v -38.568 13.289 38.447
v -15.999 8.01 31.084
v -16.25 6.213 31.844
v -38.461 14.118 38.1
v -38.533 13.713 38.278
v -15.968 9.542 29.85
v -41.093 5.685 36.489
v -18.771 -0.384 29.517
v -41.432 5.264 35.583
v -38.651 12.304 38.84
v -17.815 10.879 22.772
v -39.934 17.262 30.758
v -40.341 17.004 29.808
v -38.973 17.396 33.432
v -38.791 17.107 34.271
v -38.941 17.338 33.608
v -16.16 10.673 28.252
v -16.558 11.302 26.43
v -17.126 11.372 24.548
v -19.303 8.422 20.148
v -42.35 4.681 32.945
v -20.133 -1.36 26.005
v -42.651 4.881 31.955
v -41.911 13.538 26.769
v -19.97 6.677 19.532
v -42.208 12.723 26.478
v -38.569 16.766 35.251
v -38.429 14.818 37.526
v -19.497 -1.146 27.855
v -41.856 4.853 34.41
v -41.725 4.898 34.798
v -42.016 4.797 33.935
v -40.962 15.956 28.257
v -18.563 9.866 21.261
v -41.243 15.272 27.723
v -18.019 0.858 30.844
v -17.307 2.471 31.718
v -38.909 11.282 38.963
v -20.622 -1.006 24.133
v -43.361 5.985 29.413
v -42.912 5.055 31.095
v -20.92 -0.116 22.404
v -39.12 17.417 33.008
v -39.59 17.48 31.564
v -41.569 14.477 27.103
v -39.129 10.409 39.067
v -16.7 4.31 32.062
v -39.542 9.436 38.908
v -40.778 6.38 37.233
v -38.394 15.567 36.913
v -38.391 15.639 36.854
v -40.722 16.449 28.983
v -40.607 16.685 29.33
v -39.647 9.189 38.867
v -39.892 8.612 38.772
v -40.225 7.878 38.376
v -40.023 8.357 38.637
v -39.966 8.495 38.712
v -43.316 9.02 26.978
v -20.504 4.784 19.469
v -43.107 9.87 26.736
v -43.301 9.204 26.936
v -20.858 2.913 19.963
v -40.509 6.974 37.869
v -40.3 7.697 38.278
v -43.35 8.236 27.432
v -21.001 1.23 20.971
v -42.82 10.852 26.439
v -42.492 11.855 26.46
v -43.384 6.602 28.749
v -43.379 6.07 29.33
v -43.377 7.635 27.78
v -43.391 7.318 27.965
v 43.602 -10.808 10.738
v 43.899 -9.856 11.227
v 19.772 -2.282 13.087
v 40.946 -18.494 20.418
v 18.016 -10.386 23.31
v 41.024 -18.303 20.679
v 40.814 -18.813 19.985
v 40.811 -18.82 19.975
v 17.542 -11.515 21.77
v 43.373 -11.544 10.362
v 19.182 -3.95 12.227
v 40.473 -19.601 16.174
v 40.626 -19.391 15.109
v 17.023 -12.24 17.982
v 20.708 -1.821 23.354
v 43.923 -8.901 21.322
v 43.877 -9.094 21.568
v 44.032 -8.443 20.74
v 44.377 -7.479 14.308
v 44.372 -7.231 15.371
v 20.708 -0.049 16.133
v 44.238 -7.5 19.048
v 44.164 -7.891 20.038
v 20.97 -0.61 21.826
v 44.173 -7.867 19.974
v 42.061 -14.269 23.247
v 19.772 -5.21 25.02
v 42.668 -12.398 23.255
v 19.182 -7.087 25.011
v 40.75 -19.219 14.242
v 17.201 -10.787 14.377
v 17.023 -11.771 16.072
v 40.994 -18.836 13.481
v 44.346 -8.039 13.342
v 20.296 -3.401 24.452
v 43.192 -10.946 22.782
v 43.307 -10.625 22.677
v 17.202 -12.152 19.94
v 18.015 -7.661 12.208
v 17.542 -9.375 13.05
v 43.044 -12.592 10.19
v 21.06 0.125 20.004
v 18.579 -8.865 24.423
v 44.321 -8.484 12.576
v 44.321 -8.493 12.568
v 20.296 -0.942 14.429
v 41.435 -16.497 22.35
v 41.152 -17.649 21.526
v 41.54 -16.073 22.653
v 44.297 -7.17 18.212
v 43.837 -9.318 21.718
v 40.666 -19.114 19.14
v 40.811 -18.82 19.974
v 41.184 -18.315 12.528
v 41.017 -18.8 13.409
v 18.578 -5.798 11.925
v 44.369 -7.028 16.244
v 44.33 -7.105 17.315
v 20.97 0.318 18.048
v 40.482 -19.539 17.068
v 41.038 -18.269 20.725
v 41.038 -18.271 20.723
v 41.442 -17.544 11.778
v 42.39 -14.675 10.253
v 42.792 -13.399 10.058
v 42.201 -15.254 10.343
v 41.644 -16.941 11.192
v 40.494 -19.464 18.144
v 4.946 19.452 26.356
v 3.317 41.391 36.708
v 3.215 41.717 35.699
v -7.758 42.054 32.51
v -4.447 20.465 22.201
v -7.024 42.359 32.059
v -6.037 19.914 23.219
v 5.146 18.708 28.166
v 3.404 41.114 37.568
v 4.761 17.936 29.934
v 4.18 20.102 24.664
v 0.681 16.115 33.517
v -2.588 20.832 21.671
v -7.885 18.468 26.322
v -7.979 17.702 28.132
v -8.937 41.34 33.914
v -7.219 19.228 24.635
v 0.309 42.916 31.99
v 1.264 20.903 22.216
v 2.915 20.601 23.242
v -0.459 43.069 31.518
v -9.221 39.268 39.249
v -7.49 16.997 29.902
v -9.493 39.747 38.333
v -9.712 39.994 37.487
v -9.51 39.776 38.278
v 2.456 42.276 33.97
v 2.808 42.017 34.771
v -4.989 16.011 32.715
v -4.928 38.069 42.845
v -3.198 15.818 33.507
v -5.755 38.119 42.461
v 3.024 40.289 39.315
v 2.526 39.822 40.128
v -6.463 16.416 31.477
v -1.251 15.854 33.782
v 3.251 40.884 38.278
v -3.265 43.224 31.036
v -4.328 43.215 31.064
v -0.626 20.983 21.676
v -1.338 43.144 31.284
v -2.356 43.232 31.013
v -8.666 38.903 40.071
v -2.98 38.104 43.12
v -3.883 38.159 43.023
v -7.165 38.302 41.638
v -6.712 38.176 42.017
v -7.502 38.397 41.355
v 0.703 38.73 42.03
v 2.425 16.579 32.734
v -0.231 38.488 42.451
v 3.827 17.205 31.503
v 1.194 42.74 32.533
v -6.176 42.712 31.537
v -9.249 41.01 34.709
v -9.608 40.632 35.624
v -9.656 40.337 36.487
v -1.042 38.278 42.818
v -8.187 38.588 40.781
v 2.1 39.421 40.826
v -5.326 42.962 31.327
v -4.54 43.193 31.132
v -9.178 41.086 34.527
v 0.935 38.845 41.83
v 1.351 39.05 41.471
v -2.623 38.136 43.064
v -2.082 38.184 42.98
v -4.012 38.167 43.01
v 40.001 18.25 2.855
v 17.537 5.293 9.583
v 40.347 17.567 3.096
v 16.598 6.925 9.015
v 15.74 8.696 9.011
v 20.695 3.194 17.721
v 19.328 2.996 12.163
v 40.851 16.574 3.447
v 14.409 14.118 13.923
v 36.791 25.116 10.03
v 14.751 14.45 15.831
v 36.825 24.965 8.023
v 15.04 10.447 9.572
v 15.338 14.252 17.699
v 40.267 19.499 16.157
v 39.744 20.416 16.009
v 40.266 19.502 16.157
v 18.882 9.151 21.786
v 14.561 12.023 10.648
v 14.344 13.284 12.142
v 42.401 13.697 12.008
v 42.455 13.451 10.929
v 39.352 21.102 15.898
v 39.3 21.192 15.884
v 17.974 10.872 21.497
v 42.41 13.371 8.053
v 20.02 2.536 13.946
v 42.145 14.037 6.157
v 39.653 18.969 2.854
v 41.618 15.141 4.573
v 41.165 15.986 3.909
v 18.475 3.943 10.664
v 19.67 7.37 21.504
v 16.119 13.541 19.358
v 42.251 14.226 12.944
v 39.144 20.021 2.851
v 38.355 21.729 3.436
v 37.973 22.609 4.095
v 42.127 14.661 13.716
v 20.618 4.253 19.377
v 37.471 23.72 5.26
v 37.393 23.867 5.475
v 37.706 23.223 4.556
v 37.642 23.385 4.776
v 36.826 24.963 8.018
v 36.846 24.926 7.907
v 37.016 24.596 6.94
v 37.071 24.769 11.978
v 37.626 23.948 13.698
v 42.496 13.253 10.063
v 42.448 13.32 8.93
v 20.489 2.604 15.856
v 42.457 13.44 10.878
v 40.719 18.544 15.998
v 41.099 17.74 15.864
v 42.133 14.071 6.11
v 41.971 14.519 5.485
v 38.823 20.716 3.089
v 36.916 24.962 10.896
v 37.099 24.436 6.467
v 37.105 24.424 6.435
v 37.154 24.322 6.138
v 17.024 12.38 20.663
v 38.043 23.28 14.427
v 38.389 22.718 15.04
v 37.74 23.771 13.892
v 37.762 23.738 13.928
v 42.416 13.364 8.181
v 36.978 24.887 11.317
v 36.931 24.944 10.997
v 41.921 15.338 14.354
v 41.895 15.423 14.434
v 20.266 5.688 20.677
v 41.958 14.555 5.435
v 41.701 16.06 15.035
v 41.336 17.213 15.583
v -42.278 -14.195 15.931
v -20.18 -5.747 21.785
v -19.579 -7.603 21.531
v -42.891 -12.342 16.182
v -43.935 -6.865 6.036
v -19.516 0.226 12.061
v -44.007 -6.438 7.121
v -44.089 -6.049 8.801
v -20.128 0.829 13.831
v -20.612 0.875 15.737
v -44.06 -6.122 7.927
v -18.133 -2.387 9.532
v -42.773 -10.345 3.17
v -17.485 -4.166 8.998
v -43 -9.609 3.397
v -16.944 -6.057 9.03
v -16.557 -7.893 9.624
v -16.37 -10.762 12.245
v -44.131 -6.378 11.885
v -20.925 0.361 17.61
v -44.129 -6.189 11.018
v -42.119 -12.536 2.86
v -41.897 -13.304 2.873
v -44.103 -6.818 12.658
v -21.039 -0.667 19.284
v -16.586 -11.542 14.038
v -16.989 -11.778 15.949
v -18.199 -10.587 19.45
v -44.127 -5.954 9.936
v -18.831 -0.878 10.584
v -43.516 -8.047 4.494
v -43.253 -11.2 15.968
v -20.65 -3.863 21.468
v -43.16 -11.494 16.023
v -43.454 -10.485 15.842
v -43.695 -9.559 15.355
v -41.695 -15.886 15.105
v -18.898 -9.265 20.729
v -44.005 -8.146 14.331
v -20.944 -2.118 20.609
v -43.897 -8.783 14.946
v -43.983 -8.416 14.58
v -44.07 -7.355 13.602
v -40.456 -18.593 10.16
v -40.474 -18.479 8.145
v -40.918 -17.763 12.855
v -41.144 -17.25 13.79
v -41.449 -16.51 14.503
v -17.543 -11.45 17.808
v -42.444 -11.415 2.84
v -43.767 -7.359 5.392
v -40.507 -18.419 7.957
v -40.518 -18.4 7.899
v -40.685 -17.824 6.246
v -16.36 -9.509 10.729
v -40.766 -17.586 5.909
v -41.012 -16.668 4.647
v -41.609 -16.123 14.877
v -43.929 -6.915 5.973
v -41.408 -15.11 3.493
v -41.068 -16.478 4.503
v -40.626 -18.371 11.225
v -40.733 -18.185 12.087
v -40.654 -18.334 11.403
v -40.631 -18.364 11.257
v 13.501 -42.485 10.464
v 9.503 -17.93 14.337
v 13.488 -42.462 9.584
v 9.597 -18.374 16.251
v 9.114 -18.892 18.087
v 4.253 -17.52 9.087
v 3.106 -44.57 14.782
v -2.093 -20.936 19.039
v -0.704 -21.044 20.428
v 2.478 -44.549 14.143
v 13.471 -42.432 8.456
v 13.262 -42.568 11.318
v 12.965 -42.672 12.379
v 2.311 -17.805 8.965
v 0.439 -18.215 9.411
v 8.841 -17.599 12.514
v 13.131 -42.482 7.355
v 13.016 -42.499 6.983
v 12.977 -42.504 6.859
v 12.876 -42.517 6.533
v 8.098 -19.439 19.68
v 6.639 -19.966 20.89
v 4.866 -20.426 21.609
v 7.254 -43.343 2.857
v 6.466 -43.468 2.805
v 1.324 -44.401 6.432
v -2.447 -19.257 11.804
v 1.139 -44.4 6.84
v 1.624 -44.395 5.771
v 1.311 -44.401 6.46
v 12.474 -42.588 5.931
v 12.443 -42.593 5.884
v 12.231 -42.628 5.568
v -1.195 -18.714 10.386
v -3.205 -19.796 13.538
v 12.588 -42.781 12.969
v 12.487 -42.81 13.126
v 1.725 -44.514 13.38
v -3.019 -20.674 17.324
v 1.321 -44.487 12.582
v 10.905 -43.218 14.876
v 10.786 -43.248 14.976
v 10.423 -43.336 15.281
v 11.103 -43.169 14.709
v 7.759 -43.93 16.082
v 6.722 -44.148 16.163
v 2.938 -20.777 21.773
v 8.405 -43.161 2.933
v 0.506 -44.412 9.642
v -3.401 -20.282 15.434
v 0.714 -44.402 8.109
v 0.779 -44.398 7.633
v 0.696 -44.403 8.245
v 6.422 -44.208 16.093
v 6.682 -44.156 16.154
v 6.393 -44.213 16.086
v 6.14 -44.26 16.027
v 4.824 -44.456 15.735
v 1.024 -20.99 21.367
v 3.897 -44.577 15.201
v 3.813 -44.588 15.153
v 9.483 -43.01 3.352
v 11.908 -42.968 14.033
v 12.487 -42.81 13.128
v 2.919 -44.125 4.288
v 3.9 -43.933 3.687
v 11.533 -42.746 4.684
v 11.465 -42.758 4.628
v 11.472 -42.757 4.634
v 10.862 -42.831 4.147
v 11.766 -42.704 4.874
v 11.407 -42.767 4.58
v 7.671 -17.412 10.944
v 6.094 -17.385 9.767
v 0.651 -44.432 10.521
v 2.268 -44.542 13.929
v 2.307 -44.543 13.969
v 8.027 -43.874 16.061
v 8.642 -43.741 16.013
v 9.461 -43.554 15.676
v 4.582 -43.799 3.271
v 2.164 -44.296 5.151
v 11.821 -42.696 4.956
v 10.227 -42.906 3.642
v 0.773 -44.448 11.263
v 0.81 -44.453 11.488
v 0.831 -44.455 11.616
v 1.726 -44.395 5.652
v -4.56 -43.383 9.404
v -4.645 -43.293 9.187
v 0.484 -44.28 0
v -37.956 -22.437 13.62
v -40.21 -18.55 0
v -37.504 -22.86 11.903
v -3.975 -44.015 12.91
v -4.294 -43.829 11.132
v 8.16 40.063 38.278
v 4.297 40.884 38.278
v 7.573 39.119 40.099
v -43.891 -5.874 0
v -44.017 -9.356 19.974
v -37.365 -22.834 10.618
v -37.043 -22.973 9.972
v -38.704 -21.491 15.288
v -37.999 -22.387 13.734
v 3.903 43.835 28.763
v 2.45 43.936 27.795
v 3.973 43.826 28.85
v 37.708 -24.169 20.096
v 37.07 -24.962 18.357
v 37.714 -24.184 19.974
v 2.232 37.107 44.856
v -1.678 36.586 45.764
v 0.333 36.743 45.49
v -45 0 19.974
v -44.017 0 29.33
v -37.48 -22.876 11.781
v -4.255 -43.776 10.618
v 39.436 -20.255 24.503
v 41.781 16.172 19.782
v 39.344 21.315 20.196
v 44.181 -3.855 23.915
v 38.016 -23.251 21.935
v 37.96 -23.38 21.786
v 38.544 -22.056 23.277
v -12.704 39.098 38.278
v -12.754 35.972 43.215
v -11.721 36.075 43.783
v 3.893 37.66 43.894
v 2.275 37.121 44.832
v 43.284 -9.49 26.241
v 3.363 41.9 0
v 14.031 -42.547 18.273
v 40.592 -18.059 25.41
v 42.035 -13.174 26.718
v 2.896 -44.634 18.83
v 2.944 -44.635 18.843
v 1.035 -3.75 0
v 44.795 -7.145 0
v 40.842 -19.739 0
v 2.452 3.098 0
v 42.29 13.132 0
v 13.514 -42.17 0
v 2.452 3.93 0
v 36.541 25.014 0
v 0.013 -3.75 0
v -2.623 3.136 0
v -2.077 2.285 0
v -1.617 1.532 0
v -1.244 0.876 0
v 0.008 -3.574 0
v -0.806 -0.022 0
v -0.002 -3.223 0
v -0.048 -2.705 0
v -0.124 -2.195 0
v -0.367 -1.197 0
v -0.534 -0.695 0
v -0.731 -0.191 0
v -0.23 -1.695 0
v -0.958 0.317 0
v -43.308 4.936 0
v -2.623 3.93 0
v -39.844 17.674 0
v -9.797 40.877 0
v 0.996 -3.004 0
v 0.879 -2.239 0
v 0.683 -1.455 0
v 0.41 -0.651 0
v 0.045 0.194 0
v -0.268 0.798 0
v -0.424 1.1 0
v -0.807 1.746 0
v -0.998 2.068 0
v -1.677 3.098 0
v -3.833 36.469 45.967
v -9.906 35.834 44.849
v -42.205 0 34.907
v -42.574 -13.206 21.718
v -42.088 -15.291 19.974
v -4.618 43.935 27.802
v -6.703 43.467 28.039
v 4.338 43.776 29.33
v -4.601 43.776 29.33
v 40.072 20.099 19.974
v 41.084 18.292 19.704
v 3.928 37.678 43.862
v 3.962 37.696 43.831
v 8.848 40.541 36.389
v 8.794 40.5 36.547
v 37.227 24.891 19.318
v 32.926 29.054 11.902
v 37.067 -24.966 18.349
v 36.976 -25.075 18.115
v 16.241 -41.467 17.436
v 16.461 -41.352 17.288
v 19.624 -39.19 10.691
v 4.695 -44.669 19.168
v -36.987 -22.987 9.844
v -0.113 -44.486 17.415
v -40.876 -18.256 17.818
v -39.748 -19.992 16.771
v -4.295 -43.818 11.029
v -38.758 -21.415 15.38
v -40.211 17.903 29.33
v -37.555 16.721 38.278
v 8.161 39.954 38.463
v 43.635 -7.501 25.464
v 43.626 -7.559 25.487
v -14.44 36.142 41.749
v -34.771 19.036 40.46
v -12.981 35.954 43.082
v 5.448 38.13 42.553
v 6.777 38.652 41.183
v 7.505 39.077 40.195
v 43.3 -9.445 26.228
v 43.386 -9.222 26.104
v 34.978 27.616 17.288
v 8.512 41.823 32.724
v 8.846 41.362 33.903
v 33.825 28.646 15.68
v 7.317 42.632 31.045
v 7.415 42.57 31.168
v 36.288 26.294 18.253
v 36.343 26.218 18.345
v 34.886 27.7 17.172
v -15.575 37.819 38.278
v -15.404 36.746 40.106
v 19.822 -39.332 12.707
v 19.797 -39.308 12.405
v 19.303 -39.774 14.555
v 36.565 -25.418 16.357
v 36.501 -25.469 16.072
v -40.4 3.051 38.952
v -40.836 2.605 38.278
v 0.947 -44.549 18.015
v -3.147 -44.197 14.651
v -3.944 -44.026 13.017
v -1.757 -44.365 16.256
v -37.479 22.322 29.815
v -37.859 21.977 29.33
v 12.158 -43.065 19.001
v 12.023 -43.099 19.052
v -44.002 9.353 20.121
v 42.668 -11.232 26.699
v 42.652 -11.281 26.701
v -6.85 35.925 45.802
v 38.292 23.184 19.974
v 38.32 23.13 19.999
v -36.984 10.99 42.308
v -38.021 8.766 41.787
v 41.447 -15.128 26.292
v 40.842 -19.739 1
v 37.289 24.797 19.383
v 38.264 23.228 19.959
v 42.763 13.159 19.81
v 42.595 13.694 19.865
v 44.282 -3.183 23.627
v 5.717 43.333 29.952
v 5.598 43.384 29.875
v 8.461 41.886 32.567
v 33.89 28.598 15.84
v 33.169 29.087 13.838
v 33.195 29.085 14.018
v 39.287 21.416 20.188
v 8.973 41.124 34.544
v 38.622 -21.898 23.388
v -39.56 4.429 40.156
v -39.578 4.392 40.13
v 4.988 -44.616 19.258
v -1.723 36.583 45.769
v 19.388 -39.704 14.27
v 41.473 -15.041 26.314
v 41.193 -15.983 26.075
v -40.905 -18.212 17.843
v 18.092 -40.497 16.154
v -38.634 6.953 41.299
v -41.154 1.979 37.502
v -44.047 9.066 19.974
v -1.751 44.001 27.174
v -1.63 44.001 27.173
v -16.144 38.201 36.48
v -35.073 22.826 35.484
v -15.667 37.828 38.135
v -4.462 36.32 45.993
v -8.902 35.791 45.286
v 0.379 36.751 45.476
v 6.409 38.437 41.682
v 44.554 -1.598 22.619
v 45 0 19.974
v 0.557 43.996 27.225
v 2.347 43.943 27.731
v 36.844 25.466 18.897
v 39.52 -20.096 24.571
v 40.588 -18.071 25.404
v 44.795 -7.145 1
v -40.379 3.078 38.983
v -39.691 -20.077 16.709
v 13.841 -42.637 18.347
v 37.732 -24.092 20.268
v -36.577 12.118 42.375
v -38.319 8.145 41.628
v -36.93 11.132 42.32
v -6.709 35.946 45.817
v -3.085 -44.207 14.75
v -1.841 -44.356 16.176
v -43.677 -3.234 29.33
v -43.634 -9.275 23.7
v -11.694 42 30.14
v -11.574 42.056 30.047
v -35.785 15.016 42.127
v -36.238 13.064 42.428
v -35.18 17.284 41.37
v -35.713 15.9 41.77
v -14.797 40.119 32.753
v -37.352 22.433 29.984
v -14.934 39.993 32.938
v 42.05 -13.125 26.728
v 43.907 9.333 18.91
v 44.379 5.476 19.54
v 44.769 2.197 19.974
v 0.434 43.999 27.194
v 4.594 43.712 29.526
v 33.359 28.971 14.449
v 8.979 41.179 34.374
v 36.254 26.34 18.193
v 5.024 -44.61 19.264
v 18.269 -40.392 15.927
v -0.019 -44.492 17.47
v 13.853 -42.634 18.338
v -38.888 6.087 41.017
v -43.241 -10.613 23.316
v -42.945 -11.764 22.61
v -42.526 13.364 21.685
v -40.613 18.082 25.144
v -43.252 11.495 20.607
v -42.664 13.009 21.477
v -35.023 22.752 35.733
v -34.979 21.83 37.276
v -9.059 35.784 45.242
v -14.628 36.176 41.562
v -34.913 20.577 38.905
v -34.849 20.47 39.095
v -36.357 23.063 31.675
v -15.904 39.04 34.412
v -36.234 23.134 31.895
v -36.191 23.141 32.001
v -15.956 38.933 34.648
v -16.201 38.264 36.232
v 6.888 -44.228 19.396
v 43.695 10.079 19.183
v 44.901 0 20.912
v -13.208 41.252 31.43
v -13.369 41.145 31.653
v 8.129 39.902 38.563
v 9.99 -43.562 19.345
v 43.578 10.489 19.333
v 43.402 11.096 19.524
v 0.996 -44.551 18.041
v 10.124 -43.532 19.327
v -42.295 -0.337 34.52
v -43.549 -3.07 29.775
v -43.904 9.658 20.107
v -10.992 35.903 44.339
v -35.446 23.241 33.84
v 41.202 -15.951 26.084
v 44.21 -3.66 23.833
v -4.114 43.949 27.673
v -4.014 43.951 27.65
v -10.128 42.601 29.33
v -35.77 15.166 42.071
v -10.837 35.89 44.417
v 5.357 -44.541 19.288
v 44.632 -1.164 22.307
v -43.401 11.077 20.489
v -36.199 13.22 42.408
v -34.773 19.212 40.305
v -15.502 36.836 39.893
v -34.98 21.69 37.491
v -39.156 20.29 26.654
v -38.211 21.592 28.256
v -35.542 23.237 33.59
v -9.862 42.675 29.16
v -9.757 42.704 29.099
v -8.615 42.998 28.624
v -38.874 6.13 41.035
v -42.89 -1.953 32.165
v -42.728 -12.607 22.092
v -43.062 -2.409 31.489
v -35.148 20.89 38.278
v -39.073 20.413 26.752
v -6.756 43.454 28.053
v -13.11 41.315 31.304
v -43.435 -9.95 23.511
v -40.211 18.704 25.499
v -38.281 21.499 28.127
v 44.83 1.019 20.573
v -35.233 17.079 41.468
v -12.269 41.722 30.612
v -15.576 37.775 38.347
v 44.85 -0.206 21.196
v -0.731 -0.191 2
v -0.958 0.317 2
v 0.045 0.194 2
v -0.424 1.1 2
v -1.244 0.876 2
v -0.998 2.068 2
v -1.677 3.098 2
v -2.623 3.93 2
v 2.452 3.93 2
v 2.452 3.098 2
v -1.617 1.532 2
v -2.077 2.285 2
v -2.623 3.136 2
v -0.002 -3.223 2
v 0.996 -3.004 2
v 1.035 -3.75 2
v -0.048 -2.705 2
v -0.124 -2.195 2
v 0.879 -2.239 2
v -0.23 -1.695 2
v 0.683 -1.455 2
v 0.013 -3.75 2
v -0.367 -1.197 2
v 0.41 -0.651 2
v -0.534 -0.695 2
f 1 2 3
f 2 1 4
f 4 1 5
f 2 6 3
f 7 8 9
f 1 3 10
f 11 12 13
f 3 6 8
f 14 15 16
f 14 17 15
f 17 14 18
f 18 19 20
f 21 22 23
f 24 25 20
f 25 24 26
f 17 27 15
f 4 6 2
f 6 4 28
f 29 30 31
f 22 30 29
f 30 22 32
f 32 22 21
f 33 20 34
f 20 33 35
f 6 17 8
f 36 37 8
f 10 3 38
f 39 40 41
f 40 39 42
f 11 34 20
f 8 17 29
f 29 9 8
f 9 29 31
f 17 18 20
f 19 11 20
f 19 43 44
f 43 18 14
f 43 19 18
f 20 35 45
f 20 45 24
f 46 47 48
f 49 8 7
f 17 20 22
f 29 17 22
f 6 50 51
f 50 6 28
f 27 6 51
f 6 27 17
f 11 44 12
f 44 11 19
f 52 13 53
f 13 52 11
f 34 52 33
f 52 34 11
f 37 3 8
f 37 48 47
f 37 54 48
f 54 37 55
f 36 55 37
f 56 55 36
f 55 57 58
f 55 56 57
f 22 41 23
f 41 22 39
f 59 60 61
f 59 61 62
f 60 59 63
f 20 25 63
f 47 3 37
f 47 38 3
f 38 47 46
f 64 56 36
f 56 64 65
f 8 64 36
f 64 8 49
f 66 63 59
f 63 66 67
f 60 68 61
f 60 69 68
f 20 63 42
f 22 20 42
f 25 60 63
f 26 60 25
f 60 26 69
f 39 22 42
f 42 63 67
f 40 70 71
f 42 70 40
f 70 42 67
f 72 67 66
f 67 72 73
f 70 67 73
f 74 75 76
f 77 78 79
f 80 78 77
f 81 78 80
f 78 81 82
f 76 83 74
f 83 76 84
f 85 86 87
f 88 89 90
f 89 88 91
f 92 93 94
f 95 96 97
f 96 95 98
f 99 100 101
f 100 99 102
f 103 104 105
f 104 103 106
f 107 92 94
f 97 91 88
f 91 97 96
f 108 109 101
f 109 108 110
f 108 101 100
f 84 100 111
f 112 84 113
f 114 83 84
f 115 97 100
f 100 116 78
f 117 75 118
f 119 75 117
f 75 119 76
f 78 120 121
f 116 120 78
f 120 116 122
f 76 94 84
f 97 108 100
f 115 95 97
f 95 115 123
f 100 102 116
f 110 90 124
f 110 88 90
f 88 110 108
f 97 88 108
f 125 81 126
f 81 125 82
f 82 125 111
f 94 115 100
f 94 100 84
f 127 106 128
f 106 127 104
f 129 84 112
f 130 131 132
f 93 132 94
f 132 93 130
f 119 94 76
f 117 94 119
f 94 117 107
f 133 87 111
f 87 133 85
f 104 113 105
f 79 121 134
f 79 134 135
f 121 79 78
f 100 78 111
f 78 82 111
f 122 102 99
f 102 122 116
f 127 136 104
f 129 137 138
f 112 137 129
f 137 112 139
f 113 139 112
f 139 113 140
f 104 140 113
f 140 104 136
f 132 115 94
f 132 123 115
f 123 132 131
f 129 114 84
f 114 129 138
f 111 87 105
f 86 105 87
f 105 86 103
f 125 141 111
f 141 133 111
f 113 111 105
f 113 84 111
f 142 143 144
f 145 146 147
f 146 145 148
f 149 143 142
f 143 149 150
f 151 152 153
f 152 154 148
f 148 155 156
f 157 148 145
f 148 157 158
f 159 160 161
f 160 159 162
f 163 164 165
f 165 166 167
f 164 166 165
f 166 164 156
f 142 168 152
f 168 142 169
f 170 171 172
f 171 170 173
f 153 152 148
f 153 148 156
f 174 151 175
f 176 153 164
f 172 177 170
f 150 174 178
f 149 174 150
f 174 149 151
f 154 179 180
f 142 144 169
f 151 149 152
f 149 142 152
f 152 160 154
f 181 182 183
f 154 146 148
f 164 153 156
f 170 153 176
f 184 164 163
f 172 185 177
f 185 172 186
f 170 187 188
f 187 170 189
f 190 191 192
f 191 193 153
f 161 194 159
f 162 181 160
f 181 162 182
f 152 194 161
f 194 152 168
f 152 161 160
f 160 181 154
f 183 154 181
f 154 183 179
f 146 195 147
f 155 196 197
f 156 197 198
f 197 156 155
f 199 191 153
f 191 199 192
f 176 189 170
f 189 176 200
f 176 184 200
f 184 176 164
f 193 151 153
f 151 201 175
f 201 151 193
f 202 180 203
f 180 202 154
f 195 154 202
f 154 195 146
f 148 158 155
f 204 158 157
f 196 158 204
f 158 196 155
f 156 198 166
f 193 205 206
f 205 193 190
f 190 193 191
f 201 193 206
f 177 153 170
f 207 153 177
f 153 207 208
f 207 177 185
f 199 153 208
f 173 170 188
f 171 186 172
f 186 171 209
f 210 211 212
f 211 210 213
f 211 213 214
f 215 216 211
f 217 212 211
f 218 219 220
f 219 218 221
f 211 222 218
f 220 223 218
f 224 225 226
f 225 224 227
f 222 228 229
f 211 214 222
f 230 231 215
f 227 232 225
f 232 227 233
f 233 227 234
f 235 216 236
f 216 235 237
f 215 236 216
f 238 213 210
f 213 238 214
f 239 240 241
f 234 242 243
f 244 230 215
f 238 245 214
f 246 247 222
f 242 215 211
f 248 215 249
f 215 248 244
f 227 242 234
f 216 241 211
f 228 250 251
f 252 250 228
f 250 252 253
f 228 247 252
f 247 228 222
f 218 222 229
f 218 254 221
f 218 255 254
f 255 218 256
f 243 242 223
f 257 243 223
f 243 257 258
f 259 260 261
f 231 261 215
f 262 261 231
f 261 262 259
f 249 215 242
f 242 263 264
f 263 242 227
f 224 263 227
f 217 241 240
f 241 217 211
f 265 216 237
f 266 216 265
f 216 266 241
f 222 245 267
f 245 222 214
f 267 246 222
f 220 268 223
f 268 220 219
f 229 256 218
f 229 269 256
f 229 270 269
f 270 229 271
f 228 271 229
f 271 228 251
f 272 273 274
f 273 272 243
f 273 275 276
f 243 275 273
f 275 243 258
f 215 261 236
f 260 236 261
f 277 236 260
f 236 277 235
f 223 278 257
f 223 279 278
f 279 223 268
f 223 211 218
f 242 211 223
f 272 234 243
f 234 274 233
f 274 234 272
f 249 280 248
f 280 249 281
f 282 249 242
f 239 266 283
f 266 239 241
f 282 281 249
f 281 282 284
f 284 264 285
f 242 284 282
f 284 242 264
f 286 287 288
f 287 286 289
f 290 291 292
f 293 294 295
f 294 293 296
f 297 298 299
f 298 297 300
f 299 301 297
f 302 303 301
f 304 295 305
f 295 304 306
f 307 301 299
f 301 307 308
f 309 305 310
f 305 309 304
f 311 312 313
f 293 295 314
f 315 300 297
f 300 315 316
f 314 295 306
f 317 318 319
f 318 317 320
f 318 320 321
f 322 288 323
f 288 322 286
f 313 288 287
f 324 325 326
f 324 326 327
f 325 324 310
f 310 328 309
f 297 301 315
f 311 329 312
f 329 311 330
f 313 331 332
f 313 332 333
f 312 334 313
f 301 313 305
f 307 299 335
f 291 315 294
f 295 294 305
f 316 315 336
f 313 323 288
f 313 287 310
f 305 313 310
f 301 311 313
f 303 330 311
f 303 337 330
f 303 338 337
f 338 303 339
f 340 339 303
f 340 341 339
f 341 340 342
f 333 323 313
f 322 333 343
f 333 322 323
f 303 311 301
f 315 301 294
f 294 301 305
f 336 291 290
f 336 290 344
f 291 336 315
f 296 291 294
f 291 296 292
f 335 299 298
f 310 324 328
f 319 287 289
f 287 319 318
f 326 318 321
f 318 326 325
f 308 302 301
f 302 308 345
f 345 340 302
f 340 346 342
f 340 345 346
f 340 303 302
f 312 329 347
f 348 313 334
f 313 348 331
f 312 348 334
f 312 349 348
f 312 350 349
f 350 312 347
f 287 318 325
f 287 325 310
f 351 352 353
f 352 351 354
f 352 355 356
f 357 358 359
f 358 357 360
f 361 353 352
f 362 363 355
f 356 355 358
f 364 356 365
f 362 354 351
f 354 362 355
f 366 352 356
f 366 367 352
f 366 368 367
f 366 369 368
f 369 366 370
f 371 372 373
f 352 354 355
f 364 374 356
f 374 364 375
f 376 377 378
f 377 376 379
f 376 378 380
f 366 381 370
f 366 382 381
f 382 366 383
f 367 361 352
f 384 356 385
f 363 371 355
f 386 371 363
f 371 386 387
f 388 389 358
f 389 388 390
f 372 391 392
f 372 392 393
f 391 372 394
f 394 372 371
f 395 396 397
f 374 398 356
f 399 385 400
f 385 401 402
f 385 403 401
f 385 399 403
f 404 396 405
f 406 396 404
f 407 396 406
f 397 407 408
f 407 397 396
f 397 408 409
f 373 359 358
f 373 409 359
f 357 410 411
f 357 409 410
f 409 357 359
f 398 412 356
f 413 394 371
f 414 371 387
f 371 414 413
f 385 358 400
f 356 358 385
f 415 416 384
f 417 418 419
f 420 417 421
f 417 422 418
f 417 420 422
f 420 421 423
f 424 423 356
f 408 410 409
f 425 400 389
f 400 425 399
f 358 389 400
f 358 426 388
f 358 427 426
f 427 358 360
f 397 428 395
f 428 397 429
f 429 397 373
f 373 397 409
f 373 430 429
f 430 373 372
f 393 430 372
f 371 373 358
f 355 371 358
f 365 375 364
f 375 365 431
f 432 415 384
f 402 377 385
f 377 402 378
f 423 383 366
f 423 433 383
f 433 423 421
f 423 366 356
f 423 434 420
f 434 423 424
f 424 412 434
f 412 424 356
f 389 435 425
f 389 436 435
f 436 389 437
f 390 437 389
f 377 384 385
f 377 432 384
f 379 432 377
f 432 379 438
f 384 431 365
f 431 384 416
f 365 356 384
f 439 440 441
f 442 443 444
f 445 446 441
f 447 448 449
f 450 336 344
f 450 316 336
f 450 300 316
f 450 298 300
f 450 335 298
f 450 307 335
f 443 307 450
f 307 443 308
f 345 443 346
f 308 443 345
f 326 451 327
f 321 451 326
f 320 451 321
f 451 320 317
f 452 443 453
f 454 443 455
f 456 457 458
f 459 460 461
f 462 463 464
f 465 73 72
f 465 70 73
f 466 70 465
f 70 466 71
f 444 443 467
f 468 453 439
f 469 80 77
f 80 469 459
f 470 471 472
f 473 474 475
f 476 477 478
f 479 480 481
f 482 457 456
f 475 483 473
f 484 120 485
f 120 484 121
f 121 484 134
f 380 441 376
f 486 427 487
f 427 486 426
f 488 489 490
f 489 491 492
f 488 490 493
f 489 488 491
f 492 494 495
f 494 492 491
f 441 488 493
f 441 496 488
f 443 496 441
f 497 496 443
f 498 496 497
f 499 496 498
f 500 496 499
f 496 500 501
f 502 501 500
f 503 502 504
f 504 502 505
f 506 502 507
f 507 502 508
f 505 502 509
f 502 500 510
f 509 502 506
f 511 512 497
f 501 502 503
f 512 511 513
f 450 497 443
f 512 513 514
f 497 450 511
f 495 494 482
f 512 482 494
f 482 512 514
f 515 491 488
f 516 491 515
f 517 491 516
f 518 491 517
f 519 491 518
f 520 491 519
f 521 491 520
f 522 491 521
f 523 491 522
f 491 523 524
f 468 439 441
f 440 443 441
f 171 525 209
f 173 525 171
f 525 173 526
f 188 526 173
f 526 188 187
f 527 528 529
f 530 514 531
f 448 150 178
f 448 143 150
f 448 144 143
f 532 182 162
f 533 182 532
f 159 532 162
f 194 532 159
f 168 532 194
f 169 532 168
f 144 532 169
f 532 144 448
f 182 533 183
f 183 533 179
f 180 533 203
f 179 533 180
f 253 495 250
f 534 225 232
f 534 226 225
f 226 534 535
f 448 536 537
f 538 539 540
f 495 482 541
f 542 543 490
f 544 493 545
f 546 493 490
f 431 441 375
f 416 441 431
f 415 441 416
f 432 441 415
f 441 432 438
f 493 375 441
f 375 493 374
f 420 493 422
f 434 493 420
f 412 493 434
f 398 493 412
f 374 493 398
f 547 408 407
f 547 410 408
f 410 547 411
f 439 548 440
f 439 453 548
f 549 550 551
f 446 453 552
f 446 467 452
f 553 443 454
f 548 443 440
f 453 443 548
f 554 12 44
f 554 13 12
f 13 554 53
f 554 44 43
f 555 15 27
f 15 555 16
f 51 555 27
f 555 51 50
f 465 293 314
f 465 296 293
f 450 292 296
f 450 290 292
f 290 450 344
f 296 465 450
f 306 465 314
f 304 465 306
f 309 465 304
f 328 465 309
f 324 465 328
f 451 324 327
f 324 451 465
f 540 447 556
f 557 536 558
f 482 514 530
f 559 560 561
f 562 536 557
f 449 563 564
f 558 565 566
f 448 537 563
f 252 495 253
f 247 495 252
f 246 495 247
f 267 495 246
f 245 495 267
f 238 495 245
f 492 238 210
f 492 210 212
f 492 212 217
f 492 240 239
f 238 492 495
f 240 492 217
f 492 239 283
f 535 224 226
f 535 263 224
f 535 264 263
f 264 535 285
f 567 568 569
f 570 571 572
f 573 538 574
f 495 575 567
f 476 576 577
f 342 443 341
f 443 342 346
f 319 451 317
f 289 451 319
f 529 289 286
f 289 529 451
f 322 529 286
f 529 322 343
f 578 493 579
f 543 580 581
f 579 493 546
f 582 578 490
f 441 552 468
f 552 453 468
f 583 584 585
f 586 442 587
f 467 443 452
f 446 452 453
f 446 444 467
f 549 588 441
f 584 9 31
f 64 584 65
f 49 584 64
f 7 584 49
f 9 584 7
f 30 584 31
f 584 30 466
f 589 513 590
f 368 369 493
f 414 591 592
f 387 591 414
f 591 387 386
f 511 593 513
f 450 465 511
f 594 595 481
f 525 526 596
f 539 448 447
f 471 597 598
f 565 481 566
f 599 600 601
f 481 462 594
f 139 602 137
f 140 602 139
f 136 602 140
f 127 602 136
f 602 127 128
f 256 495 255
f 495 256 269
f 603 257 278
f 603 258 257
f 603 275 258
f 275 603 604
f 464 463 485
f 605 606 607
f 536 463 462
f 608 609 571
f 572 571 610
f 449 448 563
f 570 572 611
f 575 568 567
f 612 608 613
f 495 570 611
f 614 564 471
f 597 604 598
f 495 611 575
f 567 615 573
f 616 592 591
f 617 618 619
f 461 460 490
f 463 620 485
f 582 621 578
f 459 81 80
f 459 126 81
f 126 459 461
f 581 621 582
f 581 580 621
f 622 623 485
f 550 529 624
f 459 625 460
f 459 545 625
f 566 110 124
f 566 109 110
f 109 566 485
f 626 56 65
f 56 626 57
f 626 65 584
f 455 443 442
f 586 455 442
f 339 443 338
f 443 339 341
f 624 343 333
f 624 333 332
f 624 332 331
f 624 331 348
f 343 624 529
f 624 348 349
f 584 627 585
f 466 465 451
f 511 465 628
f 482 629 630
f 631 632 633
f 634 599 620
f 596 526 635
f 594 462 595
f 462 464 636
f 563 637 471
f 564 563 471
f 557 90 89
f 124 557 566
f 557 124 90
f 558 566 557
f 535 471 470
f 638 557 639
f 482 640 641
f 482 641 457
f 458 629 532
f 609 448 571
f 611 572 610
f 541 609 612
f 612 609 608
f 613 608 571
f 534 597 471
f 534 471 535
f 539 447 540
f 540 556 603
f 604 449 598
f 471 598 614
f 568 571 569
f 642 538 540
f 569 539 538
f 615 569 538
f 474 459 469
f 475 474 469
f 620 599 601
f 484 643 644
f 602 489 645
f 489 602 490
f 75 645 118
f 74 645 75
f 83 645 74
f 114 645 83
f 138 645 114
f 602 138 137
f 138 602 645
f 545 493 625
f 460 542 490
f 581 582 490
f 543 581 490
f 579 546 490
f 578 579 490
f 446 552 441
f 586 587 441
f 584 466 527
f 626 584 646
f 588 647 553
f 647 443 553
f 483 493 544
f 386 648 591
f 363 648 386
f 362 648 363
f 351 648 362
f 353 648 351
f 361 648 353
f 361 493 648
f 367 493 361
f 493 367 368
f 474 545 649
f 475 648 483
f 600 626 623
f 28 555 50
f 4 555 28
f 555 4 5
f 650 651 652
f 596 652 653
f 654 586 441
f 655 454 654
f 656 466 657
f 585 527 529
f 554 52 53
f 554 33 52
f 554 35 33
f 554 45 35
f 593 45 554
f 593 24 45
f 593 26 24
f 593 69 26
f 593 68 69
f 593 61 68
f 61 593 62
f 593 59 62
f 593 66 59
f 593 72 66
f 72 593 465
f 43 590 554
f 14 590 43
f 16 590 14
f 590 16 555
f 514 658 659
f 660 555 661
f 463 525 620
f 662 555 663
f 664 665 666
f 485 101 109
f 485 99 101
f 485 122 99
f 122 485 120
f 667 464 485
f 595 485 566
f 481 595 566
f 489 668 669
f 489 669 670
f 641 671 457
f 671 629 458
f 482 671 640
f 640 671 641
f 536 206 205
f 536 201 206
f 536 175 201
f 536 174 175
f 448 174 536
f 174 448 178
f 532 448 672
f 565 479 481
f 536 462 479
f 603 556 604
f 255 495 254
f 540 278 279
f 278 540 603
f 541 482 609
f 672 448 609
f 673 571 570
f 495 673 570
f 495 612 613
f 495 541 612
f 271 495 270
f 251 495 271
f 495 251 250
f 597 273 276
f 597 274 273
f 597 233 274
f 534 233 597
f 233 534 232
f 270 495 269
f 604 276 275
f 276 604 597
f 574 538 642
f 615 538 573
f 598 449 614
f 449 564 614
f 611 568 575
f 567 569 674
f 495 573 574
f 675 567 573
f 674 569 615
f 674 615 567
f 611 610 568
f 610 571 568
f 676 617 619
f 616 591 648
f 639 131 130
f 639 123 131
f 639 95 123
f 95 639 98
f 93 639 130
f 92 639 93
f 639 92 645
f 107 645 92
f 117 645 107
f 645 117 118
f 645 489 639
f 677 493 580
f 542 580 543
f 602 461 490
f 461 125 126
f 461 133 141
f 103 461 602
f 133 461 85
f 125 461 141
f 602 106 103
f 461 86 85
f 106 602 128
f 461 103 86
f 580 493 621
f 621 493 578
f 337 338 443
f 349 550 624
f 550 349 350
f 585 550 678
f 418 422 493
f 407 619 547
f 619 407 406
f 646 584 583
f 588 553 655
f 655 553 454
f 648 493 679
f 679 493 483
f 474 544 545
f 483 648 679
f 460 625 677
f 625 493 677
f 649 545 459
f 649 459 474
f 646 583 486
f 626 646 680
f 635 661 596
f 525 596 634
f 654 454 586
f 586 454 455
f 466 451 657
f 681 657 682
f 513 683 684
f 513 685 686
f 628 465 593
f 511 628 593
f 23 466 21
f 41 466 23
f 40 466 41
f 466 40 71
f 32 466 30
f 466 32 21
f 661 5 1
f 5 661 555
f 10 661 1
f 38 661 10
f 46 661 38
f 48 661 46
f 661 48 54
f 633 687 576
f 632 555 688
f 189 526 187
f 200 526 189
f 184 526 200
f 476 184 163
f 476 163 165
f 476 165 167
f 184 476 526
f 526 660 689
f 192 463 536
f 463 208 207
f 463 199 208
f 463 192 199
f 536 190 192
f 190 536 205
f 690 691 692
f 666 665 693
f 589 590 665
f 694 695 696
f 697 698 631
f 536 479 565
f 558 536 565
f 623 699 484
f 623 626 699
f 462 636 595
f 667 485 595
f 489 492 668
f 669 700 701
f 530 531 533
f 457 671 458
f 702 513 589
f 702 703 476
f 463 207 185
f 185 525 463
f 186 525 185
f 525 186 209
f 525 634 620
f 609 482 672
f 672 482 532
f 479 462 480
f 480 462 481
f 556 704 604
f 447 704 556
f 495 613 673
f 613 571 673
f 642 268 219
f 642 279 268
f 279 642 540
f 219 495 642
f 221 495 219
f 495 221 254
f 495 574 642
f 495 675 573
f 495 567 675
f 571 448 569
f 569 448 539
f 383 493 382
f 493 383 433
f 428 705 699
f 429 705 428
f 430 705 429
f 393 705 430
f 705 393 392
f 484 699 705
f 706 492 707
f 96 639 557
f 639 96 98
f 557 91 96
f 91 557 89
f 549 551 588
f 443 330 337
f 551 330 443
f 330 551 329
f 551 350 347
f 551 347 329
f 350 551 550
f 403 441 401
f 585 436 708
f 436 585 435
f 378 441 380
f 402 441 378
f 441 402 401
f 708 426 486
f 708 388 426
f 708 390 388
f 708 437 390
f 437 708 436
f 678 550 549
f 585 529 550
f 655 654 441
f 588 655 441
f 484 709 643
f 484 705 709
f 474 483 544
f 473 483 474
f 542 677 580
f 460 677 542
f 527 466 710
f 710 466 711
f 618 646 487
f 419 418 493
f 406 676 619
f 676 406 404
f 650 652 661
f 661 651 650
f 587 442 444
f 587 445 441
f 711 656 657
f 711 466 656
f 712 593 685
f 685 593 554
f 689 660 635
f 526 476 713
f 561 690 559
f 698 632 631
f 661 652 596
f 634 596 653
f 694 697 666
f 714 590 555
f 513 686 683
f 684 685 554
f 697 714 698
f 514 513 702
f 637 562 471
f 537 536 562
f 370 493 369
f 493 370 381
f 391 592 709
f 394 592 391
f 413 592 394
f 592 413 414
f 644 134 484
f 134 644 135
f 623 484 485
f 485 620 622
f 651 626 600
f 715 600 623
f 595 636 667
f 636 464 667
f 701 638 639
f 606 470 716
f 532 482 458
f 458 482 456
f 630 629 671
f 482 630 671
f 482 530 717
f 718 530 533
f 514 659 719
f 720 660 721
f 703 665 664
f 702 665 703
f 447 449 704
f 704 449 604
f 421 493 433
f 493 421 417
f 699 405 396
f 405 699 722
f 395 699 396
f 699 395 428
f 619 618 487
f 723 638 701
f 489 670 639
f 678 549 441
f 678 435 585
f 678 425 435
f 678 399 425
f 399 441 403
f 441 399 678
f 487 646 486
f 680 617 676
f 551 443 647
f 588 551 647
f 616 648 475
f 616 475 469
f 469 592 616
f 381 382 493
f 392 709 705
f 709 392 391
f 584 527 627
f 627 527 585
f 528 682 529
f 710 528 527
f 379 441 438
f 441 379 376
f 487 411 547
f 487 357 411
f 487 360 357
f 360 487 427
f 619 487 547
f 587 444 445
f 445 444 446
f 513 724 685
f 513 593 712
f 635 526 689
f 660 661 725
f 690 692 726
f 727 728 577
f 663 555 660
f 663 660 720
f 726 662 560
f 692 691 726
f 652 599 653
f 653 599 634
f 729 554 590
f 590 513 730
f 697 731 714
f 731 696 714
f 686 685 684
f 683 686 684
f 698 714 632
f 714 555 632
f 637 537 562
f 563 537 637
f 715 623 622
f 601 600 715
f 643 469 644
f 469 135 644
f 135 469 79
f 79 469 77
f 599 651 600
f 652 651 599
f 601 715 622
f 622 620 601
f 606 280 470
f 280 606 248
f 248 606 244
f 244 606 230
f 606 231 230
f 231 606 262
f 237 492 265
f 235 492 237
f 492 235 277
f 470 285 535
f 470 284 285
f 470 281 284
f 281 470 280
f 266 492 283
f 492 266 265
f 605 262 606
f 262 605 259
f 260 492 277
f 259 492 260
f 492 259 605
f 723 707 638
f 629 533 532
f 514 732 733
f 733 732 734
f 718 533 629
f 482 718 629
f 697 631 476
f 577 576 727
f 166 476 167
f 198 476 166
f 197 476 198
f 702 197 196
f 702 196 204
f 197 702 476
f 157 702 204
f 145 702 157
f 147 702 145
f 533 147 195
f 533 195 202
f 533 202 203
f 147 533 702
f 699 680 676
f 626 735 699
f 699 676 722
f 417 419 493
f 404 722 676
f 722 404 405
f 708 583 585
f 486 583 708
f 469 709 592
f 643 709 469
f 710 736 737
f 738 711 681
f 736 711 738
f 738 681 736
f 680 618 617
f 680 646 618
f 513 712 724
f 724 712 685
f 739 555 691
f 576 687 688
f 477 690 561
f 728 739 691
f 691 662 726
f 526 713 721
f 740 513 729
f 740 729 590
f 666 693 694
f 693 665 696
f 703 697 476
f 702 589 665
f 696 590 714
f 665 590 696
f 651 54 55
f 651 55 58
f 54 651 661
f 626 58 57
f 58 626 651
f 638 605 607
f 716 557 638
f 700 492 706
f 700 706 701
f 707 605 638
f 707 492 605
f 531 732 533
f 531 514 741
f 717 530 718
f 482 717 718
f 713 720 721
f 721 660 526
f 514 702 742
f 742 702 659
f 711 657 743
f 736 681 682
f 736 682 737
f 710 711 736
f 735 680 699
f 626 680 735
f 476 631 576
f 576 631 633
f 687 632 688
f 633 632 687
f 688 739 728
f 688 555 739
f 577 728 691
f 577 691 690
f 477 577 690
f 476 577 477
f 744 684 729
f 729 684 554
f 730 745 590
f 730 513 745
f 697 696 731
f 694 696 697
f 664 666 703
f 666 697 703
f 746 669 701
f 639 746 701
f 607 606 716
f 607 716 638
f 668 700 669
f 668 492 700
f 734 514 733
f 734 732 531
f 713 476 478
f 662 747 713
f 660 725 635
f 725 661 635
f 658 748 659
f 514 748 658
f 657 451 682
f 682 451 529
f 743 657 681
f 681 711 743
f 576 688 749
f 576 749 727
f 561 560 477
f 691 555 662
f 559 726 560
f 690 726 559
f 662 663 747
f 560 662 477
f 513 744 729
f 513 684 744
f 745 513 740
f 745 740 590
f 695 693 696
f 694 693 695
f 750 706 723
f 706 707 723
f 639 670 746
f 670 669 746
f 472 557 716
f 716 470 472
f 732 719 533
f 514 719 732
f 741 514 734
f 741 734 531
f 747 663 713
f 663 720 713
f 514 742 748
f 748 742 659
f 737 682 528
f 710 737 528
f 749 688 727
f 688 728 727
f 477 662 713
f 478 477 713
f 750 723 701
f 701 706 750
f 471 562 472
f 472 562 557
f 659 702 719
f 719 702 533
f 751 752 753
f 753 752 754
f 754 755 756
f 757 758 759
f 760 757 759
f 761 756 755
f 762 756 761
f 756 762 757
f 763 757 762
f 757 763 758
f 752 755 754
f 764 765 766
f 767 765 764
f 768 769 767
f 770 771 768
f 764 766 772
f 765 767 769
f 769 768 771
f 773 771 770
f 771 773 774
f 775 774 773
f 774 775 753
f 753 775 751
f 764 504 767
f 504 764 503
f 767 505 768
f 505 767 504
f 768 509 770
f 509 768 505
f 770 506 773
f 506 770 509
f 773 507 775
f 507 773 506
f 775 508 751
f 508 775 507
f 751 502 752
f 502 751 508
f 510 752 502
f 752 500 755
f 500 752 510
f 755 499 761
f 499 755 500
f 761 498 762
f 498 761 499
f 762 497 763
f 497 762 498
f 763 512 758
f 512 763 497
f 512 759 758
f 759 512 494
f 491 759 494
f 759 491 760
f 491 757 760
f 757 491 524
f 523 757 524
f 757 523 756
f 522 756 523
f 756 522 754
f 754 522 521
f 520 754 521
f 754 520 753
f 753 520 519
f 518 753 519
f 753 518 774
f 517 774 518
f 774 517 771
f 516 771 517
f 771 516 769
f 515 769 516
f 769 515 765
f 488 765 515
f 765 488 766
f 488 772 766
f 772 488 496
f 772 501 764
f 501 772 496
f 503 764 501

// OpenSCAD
difference() {
	difference() {
		hull() {
			union() {
				union() {
					rotate(a = 164.7886357031, v = [0, 0, 1]) {
						translate(v = [0, -6.6000000000, 0]) {
							cube(size = [43.0855412573, 13.2000000000, 1]);
						}
					}
					rotate(a = -17.4284239141, v = [0, 0, 1]) {
						translate(v = [0, -6.6000000000, 0]) {
							cube(size = [44.8787166652, 13.2000000000, 1]);
						}
					}
					rotate(a = 94.4448581405, v = [0, 0, 1]) {
						translate(v = [0, -6.6000000000, 0]) {
							cube(size = [41.5129379243, 13.2000000000, 1]);
						}
					}
					rotate(a = 25.8222615810, v = [0, 0, 1]) {
						translate(v = [0, -6.6000000000, 0]) {
							cube(size = [43.7878239288, 13.2000000000, 1]);
						}
					}
					rotate(a = -163.8058894154, v = [0, 0, 1]) {
						translate(v = [0, -6.6000000000, 0]) {
							cube(size = [43.7878212574, 13.2000000000, 1]);
						}
					}
					rotate(a = -80.8022124970, v = [0, 0, 1]) {
						translate(v = [0, -6.6000000000, 0]) {
							cube(size = [43.7878216848, 13.2000000000, 1]);
						}
					}
				}
				translate(v = [0, 0, 19.9742654382]) {
					intersection() {
						hull() {
							rotate(a = 73.2272146022, v = [-0.2512176951, -0.9239117677, 0.0000011751]) {
								cylinder(h = 45, r = 9.6000000000);
							}
							rotate(a = 94.2075148484, v = [0.2987068259, 0.9515204788, -0.0000012502]) {
								cylinder(h = 45, r = 9.6000000000);
							}
							rotate(a = 67.2957373806, v = [-0.9197347885, -0.0714945390, 0.0000009912]) {
								cylinder(h = 45, r = 9.6000000000);
							}
							rotate(a = 103.3288130025, v = [-0.4238477558, 0.8759022790, -0.0000004521]) {
								cylinder(h = 45, r = 9.6000000000);
							}
							rotate(a = 103.3289752894, v = [0.2713795561, -0.9344536308, 0.0000006631]) {
								cylinder(h = 45, r = 9.6000000000);
							}
							rotate(a = 103.3289493282, v = [0.9605512597, 0.1555375594, -0.0000011161]) {
								cylinder(h = 45, r = 9.6000000000);
							}
						}
						sphere(r = 45);
					}
				}
			}
		}
		translate(v = [0, 0, 19.9742654382]) {
			rotate(a = 73.2272146022, v = [-0.2512176951, -0.9239117677, 0.0000011751]) {
				translate(v = [0, 0, 20]) {
					cylinder(h = 45, r = 6.6000000000);
				}
			}
			rotate(a = 94.2075148484, v = [0.2987068259, 0.9515204788, -0.0000012502]) {
				translate(v = [0, 0, 20]) {
					cylinder(h = 45, r = 6.6000000000);
				}
			}
			rotate(a = 67.2957373806, v = [-0.9197347885, -0.0714945390, 0.0000009912]) {
				translate(v = [0, 0, 20]) {
					cylinder(h = 45, r = 6.6000000000);
				}
			}
			rotate(a = 103.3288130025, v = [-0.4238477558, 0.8759022790, -0.0000004521]) {
				translate(v = [0, 0, 20]) {
					cylinder(h = 45, r = 6.6000000000);
				}
			}
			rotate(a = 103.3289752894, v = [0.2713795561, -0.9344536308, 0.0000006631]) {
				translate(v = [0, 0, 20]) {
					cylinder(h = 45, r = 6.6000000000);
				}
			}
			rotate(a = 103.3289493282, v = [0.9605512597, 0.1555375594, -0.0000011161]) {
				translate(v = [0, 0, 20]) {
					cylinder(h = 45, r = 6.6000000000);
				}
			}
		}
	}
	translate(v = [0, 0, 2]) {
		rotate(a = 180, v = [0, 1, 0]) {
			linear_extrude(height = 3) {
				text(halign = "center", size = 8, text = "7", valign = "center");
			}
		}
	}
}
